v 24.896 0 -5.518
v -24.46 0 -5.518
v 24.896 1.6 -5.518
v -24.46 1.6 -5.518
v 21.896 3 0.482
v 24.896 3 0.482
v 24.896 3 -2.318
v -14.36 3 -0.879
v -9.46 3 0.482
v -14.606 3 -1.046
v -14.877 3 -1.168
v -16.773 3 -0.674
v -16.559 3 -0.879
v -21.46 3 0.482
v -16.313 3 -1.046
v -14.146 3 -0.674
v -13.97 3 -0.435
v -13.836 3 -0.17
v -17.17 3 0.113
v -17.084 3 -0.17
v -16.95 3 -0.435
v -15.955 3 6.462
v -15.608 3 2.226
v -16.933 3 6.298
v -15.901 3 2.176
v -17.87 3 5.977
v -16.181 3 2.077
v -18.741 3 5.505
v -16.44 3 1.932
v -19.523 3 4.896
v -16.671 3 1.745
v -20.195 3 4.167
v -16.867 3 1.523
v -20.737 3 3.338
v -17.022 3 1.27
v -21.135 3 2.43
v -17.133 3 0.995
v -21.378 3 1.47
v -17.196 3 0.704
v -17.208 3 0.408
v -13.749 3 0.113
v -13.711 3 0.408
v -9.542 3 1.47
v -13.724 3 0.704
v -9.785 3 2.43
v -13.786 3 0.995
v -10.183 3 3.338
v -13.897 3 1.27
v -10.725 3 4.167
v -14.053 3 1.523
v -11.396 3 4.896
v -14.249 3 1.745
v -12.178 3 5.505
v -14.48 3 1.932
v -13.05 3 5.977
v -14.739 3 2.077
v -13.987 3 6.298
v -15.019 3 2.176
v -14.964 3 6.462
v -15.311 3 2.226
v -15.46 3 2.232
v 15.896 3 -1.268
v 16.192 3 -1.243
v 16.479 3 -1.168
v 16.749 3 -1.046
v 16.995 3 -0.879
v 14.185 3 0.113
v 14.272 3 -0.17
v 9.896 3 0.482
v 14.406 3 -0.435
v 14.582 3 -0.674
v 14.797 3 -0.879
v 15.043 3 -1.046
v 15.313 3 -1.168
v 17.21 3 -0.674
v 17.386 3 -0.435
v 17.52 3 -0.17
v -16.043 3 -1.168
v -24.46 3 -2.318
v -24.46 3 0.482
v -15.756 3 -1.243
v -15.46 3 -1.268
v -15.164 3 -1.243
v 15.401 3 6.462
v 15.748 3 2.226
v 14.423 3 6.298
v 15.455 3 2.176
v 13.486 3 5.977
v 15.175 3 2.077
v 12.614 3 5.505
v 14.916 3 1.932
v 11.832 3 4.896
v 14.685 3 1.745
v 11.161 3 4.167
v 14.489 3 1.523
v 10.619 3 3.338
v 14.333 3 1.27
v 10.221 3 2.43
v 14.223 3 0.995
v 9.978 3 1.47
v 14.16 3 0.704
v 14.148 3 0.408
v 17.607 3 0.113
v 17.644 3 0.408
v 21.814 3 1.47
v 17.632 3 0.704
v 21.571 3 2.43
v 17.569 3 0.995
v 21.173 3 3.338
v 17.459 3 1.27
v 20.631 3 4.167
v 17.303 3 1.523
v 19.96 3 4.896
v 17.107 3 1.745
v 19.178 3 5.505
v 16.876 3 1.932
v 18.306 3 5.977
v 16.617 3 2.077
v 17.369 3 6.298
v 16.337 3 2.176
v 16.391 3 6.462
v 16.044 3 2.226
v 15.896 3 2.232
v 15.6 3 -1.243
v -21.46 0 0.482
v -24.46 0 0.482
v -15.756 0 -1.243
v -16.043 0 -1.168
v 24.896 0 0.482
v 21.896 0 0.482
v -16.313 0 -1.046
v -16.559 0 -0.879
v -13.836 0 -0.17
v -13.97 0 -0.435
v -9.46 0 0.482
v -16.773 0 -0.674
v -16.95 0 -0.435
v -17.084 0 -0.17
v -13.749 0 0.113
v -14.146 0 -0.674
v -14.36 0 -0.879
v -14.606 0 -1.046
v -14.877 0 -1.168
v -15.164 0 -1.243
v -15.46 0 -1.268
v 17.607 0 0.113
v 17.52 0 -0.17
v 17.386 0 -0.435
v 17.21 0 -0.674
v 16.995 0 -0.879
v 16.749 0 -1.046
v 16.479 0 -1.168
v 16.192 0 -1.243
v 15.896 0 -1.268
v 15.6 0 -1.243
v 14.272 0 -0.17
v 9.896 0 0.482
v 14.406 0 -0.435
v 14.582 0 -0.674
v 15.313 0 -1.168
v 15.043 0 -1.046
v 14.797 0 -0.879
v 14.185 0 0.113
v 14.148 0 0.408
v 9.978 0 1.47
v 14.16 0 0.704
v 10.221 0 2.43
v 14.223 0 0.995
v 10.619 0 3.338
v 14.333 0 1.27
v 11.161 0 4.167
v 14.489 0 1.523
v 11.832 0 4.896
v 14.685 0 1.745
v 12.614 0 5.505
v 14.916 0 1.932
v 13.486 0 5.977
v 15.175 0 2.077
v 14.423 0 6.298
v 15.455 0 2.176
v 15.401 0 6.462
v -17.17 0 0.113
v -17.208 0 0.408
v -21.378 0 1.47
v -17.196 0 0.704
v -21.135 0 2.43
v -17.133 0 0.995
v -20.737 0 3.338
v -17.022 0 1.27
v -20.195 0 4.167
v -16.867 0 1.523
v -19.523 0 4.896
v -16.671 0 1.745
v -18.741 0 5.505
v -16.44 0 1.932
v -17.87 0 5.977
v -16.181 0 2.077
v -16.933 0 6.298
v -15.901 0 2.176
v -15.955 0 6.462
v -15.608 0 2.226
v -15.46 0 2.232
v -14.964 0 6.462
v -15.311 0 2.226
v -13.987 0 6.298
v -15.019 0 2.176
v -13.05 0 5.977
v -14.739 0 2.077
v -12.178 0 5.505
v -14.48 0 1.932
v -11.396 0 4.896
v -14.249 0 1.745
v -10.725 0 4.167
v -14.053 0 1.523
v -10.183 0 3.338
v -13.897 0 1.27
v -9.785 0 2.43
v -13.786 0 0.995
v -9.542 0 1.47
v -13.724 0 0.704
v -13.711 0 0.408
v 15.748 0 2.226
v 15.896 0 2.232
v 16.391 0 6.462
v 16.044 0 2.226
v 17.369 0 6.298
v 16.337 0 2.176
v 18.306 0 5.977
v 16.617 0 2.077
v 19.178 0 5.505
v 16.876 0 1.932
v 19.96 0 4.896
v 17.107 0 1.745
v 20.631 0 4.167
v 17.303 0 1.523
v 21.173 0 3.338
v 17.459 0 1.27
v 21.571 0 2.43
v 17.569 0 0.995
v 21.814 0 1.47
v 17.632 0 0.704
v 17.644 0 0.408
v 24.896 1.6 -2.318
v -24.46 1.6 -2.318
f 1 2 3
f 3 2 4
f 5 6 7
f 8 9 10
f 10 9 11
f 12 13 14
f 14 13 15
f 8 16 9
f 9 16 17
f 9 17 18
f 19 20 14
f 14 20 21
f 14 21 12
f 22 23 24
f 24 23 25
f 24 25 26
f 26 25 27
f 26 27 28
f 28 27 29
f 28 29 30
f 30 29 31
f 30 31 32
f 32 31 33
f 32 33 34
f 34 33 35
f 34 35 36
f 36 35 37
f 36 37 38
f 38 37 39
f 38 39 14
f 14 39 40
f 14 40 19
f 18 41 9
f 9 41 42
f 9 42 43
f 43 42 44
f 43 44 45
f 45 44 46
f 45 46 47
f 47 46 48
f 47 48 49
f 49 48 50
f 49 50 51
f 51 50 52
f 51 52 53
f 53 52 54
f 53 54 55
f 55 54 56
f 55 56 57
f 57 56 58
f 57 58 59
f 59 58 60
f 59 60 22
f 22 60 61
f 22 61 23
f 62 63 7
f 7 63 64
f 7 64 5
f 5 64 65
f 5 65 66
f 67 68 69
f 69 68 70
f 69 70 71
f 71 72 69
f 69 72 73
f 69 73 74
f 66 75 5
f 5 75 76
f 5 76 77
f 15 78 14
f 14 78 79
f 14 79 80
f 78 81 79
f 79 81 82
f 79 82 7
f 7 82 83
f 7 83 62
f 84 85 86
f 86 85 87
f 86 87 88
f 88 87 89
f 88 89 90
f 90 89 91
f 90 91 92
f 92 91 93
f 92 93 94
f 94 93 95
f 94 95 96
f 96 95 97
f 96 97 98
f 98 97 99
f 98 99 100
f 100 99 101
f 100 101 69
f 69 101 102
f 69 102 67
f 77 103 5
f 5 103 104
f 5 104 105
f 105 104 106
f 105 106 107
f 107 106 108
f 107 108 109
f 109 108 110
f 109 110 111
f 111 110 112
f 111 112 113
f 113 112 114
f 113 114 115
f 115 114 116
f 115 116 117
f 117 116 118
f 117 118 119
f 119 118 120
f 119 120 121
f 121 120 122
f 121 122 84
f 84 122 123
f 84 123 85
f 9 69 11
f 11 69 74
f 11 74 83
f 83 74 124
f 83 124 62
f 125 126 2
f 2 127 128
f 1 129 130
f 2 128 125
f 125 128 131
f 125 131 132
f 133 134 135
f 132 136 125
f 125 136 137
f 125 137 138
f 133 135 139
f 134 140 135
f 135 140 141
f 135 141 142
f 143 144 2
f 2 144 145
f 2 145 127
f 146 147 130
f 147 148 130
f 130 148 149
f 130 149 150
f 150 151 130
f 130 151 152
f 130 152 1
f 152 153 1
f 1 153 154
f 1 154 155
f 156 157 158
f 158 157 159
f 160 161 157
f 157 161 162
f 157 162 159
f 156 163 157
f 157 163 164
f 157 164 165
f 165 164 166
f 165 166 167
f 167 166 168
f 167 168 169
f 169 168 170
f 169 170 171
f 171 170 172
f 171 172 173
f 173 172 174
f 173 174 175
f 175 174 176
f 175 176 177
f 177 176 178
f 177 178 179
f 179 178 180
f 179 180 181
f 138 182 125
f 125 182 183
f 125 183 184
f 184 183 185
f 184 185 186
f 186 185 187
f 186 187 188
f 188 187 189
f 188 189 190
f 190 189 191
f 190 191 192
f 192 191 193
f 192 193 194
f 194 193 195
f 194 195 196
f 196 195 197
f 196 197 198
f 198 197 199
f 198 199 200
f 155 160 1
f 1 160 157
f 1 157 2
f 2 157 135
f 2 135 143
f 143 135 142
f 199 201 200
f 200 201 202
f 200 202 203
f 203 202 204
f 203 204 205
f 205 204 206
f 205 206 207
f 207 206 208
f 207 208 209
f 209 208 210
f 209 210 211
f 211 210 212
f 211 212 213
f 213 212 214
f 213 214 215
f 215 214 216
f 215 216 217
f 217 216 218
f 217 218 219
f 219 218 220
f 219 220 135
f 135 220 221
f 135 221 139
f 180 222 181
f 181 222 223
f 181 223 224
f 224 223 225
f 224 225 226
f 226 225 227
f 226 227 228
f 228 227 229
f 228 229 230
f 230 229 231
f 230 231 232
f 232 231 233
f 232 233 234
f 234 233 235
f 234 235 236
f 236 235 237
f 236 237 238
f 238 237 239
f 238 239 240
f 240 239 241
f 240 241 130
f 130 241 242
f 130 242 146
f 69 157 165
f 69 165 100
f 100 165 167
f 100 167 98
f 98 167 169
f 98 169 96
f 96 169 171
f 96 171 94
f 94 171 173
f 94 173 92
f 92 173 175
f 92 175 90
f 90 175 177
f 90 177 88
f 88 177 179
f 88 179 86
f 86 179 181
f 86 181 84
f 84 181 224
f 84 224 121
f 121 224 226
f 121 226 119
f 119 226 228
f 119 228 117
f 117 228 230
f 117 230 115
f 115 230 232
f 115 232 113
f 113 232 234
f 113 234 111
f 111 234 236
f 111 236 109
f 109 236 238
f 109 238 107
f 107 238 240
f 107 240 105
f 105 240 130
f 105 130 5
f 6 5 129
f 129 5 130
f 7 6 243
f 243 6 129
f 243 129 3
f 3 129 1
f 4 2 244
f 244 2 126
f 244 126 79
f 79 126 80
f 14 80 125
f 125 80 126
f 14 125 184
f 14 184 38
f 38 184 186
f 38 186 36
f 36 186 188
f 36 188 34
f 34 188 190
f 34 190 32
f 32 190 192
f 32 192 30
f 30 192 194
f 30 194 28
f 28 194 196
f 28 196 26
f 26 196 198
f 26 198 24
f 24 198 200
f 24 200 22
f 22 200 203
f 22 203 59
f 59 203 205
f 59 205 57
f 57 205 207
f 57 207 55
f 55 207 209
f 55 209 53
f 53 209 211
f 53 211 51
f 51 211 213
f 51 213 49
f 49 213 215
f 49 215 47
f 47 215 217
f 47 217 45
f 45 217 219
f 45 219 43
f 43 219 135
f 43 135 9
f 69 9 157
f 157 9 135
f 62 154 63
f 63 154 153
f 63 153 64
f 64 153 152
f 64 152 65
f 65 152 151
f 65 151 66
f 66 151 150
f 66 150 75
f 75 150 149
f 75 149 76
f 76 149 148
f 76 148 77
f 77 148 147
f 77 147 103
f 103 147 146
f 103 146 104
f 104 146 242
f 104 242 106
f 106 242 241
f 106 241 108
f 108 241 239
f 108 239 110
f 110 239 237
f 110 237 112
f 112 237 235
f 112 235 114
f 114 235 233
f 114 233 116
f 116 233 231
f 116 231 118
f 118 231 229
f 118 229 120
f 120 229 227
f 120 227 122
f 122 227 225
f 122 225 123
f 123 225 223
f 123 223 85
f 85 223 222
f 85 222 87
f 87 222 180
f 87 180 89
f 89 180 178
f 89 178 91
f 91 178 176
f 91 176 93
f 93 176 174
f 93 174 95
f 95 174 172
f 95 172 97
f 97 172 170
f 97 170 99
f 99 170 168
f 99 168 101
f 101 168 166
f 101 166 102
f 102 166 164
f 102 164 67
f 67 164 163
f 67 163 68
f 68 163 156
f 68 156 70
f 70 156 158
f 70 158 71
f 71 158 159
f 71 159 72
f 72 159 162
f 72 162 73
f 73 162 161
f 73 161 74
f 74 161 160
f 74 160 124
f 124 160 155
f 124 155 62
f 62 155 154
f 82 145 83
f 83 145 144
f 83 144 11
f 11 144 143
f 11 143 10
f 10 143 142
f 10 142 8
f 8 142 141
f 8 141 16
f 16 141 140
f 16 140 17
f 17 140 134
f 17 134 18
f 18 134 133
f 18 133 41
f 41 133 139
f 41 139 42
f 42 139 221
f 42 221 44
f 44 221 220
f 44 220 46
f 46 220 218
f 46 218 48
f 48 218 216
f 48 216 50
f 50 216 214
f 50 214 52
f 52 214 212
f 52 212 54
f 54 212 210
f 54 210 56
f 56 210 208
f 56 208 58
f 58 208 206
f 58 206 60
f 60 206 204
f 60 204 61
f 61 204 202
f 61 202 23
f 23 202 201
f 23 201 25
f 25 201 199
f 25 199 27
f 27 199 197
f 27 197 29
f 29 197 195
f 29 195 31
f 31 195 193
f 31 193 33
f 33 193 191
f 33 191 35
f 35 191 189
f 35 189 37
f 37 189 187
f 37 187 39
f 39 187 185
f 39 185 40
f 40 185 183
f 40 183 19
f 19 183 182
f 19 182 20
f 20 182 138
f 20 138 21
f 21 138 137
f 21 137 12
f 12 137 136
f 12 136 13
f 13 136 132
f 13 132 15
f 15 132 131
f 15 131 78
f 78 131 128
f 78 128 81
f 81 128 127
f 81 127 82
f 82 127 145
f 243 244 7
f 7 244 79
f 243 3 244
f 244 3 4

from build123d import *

# Parameters (mm, degrees)
SKETCH_1_R          = 1.75
EXTRUDE_1_DEPTH     = 3
SKETCH_2_W          = 49.355771561
SKETCH_2_H          = 3.2
CUT_EXTRUDE_1_DEPTH = 1.4


with BuildPart() as part:
    # Эскиз1 → Бобышка-Вытянуть1 (new body)
    with BuildSketch(Plane(origin=(0, 0, 0), x_dir=(1, 0, 0), z_dir=(0, 1, 0))):
        with BuildLine():
            Line((-24.459773103, 5.517931082), (24.895998458, 5.517931082))
            Line((24.895998458, 5.517931082), (24.895998458, -0.482068918))
            Line((24.895998458, -0.482068918), (21.895998458, -0.482068918))
            ThreePointArc((21.895998458, -0.482068918), (15.895998458, -6.482068918), (9.895998458, -0.482068918))
            Line((9.895998458, -0.482068918), (-9.459773103, -0.482068918))
            ThreePointArc((-9.459773103, -0.482068918), (-15.459773103, -6.482068918), (-21.459773103, -0.482068918))
            Line((-21.459773103, -0.482068918), (-24.459773103, -0.482068918))
            Line((-24.459773103, -0.482068918), (-24.459773103, 5.517931082))
        make_face()
        with Locations((15.895998458, -0.482068918)):
            Circle(SKETCH_1_R, mode=Mode.SUBTRACT)
        with Locations((-15.459773103, -0.482068918)):
            Circle(SKETCH_1_R, mode=Mode.SUBTRACT)
    extrude(amount=EXTRUDE_1_DEPTH)

    # Эскиз2 → Вырез-Вытянуть1 (cut)
    with BuildSketch(Plane(origin=(0, 3, 0), x_dir=(1, 0, 0), z_dir=(0, 1, 0))):
        with Locations((0.218112678, 3.917931082)):
            Rectangle(SKETCH_2_W, SKETCH_2_H)
    extrude(amount=-CUT_EXTRUDE_1_DEPTH, mode=Mode.SUBTRACT)


solid = part.part
